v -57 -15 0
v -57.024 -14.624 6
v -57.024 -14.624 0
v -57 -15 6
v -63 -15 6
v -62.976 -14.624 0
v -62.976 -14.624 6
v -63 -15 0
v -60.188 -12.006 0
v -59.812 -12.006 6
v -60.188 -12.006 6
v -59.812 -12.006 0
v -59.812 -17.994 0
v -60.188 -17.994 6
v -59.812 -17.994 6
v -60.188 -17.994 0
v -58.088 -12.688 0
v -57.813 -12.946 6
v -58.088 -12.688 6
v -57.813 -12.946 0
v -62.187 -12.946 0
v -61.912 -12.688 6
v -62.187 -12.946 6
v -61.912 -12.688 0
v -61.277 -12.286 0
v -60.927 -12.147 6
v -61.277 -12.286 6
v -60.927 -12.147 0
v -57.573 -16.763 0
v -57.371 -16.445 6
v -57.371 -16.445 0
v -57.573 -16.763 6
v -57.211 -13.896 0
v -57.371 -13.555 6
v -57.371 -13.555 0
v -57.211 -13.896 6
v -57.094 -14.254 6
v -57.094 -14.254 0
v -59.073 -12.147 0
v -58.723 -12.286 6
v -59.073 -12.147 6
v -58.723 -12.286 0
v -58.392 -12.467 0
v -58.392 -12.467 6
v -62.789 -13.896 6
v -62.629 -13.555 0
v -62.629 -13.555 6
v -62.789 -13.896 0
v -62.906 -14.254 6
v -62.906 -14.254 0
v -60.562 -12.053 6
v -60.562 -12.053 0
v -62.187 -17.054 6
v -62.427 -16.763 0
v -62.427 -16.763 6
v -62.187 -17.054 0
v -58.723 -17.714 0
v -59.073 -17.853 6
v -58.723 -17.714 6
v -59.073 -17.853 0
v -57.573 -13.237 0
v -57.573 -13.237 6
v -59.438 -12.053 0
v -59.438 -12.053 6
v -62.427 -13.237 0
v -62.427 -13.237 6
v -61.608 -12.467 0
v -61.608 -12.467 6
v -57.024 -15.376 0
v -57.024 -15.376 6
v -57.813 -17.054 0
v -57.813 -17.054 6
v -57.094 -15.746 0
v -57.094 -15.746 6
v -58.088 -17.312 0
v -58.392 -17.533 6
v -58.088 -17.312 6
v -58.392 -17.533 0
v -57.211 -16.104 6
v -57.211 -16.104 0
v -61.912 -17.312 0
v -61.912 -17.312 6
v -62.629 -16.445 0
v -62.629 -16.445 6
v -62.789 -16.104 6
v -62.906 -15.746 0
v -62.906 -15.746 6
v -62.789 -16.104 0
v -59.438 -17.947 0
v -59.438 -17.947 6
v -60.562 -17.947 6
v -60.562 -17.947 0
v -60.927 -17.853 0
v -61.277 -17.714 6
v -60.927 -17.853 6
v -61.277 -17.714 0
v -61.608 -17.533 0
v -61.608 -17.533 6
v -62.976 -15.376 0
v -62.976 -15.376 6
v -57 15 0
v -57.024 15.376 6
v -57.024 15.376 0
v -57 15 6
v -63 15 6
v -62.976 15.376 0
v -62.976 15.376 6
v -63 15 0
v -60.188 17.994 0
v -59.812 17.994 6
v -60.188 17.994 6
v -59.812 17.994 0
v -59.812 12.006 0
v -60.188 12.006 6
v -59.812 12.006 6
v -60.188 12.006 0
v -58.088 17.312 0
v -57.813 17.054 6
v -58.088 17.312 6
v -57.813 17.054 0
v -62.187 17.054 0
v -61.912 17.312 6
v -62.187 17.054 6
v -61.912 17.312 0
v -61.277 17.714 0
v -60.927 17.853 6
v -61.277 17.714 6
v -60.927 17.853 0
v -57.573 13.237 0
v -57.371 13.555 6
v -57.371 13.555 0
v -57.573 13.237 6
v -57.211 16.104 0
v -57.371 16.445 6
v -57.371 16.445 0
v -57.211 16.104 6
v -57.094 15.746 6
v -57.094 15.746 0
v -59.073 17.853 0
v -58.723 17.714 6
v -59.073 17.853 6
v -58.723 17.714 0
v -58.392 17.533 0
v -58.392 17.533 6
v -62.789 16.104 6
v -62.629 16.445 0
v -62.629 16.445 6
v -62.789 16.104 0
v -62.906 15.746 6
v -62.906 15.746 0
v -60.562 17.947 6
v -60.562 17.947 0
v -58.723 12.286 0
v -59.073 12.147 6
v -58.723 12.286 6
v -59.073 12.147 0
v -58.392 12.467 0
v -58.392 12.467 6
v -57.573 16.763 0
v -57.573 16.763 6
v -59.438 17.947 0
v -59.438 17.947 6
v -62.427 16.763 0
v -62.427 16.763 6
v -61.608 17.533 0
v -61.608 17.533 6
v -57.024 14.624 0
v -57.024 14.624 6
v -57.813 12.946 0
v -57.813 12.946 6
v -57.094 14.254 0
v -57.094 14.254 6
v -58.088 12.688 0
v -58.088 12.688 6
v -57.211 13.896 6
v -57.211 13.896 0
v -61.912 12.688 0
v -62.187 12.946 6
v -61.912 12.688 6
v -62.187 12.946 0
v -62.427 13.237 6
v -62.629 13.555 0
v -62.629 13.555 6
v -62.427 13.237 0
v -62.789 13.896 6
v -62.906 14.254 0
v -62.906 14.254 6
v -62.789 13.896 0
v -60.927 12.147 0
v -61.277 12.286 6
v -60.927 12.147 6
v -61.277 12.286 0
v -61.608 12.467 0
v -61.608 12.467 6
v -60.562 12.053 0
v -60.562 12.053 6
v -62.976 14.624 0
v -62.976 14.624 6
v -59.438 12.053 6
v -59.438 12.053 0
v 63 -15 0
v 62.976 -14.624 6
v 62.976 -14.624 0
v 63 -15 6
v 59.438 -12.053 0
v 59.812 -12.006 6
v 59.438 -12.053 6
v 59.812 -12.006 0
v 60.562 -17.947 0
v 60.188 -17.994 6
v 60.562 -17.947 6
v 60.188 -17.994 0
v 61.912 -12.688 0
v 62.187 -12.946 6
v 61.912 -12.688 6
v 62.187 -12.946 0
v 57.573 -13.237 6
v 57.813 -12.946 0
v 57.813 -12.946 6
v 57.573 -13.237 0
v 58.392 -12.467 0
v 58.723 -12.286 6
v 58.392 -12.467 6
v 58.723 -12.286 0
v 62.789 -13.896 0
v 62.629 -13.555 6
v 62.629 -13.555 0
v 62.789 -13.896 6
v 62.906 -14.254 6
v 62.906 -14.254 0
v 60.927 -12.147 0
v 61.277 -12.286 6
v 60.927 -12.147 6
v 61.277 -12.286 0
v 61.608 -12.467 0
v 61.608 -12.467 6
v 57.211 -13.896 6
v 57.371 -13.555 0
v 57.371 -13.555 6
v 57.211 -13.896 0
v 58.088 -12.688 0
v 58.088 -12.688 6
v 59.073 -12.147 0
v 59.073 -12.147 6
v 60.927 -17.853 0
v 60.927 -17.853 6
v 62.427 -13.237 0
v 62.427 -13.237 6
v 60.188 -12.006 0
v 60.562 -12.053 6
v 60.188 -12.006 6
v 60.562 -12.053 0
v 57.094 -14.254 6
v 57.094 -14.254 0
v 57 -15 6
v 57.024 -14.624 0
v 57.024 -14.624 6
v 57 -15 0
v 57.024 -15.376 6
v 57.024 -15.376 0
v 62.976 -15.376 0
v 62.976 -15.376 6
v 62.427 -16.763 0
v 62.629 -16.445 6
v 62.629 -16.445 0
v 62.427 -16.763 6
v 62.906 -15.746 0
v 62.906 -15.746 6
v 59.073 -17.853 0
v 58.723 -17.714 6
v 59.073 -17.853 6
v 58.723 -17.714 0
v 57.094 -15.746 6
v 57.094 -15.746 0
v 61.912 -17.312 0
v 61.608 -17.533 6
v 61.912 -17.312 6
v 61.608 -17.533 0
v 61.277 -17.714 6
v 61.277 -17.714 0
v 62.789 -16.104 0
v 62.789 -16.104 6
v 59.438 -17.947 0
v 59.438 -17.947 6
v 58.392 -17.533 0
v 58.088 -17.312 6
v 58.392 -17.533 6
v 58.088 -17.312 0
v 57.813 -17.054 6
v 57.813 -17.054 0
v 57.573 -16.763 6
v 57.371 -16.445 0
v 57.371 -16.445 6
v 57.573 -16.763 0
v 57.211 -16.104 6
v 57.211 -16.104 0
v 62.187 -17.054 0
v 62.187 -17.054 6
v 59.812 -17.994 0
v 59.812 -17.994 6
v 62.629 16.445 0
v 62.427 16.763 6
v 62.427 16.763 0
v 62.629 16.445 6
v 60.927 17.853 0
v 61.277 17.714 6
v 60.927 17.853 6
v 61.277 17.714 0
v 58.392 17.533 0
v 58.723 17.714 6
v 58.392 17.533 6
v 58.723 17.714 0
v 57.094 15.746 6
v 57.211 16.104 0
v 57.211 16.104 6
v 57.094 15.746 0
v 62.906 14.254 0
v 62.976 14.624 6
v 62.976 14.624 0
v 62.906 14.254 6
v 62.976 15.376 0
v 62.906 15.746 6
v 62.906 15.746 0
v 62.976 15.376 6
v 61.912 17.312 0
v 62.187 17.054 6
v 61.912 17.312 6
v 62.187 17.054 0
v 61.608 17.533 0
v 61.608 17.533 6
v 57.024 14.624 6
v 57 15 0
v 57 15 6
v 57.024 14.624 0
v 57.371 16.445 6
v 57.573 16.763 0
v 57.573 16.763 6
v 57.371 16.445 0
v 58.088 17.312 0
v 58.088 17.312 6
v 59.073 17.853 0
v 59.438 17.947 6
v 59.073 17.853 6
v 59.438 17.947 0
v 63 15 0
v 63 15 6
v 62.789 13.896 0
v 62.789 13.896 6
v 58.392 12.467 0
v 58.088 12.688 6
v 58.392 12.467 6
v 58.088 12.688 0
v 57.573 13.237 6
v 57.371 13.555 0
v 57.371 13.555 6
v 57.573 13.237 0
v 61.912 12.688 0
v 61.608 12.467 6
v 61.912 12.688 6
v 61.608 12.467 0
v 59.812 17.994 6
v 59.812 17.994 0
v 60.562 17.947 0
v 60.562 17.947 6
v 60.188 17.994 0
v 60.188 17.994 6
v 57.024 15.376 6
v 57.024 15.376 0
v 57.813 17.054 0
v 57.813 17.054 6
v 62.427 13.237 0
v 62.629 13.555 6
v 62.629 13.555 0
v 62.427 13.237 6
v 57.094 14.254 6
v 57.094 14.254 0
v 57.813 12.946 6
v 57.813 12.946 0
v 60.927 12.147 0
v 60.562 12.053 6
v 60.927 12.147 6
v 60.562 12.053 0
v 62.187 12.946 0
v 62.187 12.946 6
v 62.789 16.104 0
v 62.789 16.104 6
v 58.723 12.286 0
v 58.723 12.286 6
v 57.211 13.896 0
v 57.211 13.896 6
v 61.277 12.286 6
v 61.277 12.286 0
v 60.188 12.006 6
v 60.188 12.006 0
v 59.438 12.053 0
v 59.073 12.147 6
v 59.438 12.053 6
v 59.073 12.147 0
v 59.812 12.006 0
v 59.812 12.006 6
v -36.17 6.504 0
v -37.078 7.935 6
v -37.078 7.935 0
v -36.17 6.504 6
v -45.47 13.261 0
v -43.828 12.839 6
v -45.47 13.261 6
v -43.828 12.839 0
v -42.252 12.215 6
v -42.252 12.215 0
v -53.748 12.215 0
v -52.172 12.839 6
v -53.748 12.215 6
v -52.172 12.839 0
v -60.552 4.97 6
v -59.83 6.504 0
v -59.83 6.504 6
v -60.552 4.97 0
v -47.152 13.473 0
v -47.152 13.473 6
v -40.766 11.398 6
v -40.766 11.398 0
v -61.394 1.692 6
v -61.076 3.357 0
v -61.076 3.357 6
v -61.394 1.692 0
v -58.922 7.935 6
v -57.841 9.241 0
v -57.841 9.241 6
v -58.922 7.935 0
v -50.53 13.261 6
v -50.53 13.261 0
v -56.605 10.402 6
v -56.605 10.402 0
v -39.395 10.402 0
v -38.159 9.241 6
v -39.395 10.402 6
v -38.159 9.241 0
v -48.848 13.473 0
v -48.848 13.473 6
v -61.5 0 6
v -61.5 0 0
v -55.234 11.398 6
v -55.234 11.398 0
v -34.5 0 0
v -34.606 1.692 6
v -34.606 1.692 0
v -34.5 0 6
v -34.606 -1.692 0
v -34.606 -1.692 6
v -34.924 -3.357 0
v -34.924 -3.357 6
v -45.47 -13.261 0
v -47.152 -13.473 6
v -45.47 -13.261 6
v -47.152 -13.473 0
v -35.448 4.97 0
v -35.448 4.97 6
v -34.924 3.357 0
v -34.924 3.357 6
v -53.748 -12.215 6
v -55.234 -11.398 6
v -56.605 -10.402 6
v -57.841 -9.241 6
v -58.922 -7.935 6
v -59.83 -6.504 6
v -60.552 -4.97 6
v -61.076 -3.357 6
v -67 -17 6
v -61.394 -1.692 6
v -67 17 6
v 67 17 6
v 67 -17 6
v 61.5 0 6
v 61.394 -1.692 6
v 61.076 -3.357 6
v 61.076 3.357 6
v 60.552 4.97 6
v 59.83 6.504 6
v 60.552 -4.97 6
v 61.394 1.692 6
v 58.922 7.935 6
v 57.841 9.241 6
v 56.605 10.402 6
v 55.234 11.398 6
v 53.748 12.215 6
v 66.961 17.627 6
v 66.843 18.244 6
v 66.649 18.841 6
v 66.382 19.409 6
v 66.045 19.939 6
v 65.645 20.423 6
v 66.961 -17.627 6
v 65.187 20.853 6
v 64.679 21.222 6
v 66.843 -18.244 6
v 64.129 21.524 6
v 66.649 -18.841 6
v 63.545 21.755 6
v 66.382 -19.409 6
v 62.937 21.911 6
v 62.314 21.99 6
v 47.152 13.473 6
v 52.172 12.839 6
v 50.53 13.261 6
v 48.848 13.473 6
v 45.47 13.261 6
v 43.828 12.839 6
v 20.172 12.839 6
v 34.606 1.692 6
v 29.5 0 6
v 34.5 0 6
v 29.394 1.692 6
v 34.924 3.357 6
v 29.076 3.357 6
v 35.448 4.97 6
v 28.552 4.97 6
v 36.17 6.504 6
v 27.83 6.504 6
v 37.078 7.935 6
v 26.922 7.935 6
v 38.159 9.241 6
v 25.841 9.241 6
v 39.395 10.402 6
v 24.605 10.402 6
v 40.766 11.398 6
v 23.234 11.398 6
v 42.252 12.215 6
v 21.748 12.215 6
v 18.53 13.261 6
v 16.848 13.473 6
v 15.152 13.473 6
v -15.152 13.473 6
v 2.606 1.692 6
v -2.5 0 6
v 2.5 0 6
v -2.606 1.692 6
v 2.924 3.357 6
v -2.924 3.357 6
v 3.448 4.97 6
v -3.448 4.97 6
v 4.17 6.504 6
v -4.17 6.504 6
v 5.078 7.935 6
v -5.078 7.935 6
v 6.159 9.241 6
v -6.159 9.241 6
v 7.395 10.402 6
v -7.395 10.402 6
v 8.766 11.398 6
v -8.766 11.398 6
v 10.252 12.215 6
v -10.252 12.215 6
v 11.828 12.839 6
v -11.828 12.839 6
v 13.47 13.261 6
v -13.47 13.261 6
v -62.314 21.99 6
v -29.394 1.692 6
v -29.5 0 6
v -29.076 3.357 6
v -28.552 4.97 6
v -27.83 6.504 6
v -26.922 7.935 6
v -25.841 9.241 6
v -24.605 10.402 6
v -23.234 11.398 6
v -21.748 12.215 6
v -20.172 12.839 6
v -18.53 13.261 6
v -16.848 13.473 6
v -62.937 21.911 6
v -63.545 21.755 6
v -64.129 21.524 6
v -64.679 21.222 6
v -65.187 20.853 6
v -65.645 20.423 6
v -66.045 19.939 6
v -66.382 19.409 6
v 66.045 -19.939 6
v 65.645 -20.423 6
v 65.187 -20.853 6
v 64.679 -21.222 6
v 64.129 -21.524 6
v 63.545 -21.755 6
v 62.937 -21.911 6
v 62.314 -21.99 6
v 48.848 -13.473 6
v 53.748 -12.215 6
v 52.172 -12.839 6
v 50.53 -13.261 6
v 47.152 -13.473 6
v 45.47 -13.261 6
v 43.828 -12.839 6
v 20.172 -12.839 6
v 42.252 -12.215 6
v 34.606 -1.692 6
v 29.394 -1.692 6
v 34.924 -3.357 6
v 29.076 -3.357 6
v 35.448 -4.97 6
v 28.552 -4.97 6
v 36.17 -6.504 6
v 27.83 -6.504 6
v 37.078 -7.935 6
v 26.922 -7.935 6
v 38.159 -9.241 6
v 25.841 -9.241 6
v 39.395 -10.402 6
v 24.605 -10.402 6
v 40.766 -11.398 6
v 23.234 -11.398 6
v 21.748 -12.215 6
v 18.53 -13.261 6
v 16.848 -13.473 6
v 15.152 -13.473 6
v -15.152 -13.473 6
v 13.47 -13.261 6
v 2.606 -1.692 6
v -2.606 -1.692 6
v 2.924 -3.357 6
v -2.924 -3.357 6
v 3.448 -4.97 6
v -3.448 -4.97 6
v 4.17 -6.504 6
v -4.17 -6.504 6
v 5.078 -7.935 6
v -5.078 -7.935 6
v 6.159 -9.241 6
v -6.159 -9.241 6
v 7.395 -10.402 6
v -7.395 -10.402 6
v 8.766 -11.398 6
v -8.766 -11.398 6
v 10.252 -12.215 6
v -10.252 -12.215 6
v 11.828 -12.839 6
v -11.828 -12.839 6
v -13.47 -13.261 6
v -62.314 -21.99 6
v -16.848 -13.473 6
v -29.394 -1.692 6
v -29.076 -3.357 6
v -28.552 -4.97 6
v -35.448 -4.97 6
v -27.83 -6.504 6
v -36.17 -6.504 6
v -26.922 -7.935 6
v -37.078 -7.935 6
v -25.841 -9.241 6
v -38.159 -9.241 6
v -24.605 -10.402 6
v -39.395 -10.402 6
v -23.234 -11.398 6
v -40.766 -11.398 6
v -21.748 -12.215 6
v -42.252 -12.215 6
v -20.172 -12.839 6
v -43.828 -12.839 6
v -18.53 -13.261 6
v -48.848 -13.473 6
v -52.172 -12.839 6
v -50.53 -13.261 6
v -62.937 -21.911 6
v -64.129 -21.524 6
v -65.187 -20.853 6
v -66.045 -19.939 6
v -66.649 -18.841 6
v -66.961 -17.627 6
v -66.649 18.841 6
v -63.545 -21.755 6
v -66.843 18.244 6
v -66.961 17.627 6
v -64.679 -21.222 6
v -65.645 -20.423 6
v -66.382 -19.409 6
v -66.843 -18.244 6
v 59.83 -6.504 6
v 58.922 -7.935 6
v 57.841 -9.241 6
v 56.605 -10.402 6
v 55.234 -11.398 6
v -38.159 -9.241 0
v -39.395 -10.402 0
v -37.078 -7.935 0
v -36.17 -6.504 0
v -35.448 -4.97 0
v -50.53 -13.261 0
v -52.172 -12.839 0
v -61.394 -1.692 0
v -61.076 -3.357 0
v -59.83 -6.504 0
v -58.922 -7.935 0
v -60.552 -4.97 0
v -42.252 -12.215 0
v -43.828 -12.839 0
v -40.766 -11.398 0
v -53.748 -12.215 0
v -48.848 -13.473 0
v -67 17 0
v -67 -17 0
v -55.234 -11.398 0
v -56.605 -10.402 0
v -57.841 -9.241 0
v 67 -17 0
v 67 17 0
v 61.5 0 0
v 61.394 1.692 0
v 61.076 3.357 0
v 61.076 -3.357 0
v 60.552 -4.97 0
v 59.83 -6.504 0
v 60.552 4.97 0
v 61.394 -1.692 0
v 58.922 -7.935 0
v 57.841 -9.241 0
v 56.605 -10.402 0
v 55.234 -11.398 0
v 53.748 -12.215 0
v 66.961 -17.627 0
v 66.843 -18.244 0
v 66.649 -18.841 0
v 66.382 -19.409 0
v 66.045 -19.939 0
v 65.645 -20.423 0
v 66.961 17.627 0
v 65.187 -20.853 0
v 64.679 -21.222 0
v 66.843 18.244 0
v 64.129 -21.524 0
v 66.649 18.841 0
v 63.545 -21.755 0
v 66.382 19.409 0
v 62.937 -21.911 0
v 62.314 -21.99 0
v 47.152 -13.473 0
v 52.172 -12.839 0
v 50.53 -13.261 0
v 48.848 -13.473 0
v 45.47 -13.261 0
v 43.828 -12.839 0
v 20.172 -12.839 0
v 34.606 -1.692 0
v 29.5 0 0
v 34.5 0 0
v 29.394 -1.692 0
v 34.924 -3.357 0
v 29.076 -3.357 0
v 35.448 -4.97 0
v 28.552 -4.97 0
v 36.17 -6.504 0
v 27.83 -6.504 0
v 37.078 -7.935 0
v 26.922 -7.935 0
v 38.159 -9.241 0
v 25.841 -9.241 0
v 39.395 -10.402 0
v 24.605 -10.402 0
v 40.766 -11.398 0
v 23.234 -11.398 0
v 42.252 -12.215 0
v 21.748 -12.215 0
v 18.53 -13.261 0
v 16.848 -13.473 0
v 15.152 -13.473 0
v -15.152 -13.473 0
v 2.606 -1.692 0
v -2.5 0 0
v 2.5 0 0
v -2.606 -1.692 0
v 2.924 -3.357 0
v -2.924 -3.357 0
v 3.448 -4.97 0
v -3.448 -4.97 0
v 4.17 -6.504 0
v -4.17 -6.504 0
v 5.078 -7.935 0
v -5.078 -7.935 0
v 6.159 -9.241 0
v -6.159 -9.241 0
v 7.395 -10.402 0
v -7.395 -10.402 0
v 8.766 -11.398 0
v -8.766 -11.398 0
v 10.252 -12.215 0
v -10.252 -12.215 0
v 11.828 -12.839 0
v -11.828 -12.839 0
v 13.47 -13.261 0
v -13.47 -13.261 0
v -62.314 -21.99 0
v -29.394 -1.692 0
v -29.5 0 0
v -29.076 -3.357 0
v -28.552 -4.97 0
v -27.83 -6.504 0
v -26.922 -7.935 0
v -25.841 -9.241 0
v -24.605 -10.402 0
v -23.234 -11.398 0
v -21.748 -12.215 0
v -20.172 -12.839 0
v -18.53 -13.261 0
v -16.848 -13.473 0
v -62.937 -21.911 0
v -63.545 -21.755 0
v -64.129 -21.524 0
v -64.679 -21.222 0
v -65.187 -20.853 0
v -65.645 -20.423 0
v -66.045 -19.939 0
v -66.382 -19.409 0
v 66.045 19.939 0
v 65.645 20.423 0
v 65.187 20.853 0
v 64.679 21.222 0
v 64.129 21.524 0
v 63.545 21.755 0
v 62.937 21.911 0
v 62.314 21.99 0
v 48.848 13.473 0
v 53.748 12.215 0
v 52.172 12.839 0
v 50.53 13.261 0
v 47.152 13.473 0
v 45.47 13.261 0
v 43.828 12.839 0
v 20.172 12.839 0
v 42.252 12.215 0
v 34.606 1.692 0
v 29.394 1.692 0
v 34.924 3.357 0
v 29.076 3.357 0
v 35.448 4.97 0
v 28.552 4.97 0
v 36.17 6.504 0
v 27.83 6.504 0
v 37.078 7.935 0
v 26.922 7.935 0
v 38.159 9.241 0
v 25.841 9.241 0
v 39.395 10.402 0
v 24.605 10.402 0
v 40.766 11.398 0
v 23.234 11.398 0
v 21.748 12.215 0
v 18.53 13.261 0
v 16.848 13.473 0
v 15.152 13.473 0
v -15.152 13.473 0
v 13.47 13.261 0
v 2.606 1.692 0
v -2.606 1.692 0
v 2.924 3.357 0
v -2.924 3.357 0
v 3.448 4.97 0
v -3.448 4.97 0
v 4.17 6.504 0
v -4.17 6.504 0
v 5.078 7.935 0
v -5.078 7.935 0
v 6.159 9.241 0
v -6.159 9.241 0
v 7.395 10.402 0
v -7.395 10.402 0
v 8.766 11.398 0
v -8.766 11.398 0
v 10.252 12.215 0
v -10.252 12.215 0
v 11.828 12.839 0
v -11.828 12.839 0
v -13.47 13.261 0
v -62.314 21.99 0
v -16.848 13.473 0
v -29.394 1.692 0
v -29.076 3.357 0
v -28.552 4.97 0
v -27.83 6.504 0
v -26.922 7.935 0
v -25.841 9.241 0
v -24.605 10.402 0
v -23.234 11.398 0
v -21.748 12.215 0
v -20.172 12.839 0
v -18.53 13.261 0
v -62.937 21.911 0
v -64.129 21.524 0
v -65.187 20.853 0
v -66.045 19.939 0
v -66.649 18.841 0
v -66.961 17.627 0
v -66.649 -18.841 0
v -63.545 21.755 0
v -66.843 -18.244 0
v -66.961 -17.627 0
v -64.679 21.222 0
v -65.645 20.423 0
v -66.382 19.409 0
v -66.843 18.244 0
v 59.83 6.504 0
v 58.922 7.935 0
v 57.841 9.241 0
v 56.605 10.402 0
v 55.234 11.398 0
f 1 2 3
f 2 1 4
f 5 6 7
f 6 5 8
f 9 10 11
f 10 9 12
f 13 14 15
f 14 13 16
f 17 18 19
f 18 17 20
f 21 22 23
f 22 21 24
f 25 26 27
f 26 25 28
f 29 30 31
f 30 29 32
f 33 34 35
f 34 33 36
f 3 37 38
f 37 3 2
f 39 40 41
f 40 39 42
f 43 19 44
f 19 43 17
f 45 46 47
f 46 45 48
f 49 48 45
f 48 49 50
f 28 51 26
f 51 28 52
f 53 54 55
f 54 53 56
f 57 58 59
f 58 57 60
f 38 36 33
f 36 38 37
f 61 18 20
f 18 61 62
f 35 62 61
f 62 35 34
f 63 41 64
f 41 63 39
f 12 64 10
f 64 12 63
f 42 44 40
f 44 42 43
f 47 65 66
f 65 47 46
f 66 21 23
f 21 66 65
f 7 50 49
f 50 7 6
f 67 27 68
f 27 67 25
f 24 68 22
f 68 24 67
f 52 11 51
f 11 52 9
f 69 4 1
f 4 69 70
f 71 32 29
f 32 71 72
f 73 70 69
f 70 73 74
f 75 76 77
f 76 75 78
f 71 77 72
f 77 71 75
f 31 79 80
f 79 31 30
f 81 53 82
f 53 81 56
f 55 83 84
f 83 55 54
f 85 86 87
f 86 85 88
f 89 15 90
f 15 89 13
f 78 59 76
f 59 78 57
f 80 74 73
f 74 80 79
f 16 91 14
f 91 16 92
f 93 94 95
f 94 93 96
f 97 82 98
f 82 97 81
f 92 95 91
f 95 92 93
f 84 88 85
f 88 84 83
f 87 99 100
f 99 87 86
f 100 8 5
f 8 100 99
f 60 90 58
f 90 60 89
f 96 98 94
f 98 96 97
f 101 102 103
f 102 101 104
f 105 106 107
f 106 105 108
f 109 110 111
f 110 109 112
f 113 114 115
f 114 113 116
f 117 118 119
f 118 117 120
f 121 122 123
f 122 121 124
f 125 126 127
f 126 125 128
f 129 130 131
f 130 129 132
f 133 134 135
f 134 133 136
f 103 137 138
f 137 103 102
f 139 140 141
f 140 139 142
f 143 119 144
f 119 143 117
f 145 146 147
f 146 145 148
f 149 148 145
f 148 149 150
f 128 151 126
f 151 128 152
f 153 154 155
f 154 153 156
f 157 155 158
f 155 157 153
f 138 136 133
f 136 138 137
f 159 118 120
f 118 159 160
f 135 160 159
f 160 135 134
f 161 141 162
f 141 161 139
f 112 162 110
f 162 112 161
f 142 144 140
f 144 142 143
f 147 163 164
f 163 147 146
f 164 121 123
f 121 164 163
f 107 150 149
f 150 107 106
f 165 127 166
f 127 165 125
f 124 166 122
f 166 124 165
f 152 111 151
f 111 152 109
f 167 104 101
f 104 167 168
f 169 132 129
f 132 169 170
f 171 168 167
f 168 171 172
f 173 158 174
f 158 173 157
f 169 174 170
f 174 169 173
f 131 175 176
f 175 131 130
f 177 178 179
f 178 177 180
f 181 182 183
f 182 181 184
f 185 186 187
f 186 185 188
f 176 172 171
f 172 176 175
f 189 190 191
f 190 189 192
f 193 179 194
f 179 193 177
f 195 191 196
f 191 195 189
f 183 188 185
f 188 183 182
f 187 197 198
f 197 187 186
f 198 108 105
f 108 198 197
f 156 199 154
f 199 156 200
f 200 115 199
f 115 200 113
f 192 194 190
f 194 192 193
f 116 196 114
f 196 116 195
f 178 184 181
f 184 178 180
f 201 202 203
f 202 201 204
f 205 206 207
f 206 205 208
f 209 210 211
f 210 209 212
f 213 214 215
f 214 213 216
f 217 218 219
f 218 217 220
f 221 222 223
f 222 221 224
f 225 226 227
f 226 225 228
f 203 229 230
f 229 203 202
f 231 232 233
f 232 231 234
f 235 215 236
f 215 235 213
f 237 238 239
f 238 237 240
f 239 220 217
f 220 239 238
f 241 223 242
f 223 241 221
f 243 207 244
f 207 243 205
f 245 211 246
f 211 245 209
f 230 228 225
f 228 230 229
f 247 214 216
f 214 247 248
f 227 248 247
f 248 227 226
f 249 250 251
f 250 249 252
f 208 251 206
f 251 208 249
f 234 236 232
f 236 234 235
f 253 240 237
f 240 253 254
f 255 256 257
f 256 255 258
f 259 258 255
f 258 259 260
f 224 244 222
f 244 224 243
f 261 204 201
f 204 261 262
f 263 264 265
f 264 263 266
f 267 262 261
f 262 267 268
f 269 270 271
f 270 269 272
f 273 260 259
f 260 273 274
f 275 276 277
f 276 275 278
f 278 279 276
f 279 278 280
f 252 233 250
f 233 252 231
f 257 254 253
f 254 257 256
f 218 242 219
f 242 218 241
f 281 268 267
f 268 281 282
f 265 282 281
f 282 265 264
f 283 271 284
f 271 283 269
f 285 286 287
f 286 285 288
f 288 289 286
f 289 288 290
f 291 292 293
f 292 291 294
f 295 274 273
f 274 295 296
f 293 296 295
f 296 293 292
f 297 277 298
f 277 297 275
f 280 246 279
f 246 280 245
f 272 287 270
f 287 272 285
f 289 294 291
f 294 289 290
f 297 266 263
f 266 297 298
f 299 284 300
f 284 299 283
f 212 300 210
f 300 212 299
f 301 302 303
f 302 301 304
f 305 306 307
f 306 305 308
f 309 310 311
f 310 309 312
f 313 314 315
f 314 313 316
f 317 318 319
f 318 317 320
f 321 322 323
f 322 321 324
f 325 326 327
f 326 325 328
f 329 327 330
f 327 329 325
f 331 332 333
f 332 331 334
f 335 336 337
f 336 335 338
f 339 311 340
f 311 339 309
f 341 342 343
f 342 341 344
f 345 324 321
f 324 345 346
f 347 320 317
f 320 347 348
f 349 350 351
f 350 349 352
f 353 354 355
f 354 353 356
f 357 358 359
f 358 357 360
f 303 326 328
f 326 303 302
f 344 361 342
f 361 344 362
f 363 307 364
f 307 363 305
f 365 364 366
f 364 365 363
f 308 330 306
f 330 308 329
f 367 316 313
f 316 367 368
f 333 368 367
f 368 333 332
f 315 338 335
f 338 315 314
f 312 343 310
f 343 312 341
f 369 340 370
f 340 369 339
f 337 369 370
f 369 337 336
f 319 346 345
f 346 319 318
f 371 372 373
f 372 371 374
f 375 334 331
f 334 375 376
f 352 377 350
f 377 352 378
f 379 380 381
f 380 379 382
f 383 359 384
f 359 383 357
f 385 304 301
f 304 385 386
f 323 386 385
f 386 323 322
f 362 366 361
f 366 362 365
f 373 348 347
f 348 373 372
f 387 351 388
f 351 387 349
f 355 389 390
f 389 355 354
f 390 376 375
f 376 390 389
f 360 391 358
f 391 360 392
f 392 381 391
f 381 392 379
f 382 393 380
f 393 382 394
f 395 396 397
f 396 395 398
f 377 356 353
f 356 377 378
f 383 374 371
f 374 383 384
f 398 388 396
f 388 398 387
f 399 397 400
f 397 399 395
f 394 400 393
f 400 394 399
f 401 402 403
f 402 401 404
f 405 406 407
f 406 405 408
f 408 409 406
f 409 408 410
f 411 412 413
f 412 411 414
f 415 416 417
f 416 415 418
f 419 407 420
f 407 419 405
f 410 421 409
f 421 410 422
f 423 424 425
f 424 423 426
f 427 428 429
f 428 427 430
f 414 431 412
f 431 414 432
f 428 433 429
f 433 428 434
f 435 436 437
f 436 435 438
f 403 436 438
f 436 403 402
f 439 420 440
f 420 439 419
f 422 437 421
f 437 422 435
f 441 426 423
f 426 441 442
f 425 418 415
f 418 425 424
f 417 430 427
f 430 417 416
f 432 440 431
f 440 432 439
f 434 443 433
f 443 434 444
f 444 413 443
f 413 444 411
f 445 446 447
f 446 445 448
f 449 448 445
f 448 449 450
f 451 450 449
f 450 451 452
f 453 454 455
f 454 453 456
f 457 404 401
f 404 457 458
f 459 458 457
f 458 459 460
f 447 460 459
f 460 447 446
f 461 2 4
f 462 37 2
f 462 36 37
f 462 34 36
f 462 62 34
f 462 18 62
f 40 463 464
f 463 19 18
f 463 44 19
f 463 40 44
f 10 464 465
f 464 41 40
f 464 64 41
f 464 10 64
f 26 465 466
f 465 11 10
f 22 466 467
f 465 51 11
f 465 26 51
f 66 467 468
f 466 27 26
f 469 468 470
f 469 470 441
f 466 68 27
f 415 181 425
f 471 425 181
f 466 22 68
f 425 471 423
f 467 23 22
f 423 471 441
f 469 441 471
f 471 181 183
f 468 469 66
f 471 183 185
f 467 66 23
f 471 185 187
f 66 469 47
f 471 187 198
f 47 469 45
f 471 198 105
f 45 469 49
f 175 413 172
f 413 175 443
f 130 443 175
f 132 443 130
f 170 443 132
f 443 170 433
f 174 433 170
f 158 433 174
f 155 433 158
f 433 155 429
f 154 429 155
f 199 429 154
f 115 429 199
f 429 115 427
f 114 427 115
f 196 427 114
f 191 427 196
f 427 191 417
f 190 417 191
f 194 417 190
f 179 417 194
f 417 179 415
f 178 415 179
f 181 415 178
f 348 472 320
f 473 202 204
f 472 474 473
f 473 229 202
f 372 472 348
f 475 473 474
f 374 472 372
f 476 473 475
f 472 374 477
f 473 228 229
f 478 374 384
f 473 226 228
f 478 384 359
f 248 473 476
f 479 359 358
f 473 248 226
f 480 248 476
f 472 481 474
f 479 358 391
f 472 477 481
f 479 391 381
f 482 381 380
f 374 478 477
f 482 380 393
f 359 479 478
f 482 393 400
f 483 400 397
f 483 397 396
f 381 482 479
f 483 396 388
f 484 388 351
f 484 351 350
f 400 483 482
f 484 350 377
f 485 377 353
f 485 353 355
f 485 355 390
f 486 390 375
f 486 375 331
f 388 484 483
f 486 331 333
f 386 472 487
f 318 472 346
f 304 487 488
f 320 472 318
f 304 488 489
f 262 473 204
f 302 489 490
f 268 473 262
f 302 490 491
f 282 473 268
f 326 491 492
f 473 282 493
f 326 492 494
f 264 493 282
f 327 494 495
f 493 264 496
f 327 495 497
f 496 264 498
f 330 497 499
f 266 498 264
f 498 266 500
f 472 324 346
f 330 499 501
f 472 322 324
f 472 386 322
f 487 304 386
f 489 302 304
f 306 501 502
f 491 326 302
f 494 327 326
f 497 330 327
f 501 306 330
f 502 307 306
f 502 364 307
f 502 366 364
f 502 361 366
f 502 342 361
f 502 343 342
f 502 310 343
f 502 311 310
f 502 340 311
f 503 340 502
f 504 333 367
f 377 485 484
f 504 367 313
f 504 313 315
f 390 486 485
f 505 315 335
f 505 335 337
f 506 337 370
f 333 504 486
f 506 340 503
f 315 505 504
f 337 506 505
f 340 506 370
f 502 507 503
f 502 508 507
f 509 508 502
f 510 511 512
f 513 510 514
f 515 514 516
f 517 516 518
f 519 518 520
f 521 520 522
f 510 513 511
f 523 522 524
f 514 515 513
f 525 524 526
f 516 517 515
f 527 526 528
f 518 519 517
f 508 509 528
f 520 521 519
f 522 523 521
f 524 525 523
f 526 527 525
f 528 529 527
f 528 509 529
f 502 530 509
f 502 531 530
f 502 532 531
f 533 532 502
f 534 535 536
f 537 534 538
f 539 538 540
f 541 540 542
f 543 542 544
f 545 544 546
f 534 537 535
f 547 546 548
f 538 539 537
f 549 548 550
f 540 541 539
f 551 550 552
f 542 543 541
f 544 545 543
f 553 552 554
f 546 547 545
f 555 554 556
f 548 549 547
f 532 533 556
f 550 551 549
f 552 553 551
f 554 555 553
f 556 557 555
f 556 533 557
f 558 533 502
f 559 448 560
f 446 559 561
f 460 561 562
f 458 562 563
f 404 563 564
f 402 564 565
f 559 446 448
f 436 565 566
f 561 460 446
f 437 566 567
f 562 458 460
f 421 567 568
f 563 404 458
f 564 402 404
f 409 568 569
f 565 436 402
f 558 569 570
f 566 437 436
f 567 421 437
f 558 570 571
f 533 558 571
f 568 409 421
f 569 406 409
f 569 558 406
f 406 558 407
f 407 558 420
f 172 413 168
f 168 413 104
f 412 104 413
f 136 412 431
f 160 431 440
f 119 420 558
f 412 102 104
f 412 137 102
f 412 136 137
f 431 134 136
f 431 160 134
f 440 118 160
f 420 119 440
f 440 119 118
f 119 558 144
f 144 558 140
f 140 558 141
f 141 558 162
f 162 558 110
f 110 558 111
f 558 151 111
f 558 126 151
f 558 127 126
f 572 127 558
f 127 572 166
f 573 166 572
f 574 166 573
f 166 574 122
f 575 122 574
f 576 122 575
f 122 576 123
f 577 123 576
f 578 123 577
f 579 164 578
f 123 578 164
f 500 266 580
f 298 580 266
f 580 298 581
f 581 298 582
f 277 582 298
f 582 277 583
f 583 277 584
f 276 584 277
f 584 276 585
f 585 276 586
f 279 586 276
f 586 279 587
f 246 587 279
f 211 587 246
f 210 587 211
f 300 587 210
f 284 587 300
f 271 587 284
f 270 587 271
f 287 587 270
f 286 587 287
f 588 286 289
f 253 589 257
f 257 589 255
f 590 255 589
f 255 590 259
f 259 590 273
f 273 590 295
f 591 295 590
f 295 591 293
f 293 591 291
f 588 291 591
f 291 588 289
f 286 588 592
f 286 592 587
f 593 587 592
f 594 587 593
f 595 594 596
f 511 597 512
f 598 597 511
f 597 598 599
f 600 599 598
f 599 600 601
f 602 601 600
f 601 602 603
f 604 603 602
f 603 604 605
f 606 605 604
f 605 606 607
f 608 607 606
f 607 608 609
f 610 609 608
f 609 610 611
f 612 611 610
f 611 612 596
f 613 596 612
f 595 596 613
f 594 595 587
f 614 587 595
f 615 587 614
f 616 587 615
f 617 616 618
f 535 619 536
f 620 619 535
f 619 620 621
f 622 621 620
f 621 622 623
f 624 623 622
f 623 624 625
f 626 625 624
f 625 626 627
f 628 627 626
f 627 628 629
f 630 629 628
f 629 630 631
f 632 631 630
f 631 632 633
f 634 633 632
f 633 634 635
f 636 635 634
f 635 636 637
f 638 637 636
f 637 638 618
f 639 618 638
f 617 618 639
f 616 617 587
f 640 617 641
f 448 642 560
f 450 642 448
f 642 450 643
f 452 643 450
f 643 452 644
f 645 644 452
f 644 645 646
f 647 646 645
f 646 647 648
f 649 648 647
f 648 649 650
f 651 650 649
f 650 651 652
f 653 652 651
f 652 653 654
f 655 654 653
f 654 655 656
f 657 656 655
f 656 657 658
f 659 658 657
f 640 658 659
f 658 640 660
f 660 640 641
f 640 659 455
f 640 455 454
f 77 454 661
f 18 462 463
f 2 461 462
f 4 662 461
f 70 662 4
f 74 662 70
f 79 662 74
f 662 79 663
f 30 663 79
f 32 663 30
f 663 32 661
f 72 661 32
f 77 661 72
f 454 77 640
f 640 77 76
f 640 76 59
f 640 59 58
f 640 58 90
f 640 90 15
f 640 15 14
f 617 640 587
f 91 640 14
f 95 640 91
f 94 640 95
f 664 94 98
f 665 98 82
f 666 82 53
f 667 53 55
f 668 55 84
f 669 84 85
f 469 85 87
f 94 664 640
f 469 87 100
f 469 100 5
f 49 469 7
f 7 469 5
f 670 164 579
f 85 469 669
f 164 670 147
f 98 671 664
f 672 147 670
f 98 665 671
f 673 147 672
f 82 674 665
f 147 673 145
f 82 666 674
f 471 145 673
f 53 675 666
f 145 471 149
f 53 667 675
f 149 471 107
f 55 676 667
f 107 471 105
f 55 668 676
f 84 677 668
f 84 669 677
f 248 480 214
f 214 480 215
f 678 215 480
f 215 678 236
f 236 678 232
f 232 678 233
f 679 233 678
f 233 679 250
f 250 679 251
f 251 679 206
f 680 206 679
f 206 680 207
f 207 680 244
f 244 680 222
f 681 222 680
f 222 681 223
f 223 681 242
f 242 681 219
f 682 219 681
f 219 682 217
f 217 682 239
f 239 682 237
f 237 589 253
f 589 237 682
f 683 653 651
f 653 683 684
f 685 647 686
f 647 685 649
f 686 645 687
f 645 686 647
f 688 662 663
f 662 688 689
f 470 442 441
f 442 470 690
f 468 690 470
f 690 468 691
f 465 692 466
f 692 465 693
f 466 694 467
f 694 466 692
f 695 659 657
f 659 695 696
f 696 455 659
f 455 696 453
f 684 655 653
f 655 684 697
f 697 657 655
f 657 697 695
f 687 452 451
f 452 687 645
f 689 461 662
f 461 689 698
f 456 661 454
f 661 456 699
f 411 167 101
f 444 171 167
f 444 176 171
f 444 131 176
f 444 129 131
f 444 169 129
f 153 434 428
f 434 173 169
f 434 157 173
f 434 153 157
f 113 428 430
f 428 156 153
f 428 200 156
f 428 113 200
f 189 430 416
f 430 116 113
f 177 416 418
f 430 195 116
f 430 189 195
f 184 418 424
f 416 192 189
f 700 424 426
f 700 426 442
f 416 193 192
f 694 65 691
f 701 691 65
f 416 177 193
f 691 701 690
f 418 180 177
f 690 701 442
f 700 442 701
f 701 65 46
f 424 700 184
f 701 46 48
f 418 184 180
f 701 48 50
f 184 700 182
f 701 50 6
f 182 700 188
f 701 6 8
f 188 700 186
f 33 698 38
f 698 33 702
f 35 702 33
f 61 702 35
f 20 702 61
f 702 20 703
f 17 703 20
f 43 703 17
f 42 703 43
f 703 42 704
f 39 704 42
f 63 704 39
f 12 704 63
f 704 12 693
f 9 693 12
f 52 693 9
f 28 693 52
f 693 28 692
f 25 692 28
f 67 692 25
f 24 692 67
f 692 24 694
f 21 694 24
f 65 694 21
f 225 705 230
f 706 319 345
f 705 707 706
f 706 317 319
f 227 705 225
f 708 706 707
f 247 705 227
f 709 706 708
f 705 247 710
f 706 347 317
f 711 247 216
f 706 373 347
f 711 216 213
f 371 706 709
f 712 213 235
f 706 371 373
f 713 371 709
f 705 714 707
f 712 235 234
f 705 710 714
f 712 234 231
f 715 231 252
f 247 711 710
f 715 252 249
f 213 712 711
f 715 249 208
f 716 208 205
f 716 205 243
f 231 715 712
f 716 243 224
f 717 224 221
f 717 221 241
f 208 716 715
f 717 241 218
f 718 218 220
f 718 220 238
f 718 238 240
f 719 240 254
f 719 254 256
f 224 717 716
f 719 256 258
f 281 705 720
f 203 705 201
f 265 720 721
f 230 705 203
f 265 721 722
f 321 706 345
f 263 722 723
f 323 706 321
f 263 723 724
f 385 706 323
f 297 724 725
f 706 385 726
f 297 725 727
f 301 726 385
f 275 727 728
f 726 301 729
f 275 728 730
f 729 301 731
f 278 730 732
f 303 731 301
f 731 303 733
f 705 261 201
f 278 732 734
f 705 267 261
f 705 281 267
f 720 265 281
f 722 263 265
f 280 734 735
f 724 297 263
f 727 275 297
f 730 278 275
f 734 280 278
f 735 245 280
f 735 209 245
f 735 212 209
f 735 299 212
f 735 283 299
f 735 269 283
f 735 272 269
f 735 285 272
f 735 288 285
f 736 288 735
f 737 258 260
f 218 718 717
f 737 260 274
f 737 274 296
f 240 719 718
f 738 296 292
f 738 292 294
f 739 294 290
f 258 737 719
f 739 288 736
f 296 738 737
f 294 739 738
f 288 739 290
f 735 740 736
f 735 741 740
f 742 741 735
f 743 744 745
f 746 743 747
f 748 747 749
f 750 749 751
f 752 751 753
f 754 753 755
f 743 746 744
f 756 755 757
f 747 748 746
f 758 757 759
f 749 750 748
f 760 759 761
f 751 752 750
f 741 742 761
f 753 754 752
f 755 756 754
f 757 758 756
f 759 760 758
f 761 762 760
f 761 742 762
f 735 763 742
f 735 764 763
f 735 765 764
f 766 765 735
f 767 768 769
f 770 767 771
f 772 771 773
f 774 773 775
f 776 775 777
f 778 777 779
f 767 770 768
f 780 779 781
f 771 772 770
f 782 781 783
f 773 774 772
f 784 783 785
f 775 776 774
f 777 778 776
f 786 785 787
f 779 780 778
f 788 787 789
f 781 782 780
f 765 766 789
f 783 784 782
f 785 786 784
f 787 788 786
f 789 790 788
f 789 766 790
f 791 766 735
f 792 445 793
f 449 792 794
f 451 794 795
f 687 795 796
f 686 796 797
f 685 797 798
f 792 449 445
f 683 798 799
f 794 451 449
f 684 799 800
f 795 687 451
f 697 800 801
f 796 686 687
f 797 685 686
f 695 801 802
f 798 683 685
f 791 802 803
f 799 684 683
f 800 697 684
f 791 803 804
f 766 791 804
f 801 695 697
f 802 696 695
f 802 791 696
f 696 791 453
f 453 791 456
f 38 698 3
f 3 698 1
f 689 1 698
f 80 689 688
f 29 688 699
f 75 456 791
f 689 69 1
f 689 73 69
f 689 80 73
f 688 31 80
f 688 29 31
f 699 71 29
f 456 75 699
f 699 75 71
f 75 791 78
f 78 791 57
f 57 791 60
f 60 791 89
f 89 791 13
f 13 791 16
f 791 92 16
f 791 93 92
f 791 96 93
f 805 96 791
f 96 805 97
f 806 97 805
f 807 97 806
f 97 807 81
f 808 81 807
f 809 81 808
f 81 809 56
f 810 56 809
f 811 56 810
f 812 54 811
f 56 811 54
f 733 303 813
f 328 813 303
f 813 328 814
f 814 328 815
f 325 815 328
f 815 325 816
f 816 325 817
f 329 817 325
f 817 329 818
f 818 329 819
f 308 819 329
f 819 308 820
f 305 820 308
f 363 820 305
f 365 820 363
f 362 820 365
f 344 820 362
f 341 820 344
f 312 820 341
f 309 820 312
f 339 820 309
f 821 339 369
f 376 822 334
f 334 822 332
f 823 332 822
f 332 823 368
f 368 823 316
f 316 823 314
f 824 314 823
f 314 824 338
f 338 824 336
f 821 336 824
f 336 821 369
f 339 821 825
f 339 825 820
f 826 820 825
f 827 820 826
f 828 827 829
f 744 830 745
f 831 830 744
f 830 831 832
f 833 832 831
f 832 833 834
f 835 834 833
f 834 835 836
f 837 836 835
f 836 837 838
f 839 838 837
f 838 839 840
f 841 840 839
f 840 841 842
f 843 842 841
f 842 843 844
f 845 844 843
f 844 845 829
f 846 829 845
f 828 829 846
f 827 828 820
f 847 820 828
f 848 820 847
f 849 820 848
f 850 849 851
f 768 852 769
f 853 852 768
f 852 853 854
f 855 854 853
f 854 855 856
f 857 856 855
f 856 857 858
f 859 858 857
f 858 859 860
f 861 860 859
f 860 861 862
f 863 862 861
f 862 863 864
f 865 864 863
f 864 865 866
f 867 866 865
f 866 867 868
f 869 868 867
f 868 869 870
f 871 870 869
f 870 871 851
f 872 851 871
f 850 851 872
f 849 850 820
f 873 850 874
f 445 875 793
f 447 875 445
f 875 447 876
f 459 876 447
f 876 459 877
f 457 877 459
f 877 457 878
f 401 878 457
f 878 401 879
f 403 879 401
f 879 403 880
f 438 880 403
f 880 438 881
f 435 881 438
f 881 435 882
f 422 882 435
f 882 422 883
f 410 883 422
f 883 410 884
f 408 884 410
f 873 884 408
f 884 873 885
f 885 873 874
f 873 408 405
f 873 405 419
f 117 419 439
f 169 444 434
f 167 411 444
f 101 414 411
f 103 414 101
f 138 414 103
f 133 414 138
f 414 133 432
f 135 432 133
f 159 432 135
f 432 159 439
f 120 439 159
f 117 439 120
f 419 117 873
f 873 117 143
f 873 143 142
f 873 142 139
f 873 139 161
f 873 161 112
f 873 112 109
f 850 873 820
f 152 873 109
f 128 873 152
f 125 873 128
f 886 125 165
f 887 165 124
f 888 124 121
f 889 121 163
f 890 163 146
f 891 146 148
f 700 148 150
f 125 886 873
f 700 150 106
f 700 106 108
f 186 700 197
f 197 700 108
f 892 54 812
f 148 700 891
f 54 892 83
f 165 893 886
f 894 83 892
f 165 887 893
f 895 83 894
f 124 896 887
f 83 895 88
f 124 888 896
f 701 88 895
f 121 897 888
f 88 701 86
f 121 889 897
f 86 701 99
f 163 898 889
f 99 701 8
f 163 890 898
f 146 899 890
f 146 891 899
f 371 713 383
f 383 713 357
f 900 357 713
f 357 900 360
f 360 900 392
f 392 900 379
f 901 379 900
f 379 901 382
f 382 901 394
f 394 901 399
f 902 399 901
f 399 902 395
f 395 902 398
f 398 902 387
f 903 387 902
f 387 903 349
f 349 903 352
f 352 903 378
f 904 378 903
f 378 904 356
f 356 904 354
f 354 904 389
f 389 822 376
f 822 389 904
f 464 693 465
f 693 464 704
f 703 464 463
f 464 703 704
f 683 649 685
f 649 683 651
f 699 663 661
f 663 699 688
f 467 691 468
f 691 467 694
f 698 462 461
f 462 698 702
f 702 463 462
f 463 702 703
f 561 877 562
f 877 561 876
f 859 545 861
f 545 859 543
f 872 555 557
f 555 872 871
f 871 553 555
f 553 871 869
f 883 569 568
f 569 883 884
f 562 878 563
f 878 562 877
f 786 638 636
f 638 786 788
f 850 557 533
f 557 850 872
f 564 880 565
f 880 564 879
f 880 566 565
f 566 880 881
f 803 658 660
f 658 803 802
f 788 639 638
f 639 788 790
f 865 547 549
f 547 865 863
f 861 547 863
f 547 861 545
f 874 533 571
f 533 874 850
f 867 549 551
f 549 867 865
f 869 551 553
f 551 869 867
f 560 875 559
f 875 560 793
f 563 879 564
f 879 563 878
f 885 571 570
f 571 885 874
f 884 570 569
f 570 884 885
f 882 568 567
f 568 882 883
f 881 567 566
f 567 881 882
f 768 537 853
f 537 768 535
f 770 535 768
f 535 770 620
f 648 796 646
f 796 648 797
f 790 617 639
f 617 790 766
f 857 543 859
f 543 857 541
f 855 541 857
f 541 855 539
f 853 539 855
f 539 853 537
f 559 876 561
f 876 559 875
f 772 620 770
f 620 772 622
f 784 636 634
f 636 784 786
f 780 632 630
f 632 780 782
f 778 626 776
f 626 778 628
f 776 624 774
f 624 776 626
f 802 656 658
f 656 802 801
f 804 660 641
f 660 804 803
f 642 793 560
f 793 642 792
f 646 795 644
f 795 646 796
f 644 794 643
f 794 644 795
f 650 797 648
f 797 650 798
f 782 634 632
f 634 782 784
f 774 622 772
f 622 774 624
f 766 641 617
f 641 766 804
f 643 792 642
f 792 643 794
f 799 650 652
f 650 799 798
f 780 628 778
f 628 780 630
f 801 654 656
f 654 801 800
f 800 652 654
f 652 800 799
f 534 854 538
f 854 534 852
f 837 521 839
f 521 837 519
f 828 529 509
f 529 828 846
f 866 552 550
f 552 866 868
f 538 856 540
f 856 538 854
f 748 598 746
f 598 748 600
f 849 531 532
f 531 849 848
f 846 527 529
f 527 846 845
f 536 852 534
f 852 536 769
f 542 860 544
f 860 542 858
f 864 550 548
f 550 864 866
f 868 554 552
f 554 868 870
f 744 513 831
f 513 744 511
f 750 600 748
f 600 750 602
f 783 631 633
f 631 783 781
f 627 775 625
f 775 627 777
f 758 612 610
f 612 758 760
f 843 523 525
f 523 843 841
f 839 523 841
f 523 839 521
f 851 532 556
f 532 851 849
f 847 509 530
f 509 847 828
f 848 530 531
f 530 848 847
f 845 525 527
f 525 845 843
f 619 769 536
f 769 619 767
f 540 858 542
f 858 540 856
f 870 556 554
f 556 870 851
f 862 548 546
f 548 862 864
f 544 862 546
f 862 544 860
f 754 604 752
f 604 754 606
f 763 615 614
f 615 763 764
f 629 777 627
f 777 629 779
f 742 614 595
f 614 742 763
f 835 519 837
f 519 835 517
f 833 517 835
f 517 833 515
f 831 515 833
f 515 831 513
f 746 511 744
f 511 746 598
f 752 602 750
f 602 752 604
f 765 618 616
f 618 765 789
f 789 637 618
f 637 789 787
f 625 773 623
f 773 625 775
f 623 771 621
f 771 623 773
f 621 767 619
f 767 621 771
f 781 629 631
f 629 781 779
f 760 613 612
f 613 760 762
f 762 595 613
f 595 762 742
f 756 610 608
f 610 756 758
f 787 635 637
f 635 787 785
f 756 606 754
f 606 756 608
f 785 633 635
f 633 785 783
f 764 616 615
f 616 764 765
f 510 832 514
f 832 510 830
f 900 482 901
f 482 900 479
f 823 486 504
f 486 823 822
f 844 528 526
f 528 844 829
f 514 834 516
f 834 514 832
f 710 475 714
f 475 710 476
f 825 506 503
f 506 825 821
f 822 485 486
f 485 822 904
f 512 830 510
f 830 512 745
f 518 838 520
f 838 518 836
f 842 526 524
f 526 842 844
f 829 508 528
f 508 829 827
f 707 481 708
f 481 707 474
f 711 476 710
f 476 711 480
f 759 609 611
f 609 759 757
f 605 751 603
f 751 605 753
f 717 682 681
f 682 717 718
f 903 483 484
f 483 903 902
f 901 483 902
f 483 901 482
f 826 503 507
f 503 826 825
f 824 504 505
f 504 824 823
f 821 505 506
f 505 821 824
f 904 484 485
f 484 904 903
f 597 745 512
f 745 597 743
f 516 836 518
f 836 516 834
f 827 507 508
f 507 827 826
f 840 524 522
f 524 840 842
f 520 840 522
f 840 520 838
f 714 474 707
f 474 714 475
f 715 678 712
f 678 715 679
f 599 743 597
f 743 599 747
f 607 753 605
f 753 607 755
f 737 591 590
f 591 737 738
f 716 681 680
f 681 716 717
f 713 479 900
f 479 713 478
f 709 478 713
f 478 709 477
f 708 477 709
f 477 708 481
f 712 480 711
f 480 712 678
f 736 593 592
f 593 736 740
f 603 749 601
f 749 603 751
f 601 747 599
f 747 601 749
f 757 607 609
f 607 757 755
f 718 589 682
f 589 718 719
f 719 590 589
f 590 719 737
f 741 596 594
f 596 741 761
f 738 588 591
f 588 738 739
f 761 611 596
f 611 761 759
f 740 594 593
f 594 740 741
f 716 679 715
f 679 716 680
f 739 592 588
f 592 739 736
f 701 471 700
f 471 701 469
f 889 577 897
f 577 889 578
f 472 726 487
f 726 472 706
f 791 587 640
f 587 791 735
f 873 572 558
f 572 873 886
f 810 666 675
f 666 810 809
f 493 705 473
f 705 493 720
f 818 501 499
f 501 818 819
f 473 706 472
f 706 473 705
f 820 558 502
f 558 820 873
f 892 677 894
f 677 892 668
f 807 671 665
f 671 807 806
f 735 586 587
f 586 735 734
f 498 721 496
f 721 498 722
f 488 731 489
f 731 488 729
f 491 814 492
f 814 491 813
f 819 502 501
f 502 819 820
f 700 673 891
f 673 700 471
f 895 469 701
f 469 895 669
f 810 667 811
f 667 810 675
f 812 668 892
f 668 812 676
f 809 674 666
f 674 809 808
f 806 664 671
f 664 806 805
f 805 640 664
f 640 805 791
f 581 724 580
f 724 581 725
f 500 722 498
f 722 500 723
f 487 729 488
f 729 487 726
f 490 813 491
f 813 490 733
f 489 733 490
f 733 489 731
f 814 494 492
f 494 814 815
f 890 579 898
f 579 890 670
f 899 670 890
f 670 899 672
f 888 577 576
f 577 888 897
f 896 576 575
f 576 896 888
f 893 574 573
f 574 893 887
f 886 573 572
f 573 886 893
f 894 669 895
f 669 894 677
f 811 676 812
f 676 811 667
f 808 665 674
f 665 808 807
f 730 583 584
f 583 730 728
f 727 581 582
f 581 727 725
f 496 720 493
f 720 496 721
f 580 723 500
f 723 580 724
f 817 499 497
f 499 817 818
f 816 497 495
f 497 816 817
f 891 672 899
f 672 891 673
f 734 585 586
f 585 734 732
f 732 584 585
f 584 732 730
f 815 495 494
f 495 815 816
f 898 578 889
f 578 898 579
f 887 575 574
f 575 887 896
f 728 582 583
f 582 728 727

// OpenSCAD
$fn = 50;


difference() {
	union() {
		hull() {
			translate(v = [-62.0000000000, 17.0000000000, 0]) {
				cylinder(h = 6, r = 5);
			}
			translate(v = [62.0000000000, 17.0000000000, 0]) {
				cylinder(h = 6, r = 5);
			}
			translate(v = [-62.0000000000, -17.0000000000, 0]) {
				cylinder(h = 6, r = 5);
			}
			translate(v = [62.0000000000, -17.0000000000, 0]) {
				cylinder(h = 6, r = 5);
			}
		}
	}
	union() {
		#translate(v = [-60.0000000000, -15.0000000000, -100.0000000000]) {
			cylinder(h = 200, r = 3.0000000000);
		}
		#translate(v = [-60.0000000000, 15.0000000000, -100.0000000000]) {
			cylinder(h = 200, r = 3.0000000000);
		}
		#translate(v = [60.0000000000, -15.0000000000, -100.0000000000]) {
			cylinder(h = 200, r = 3.0000000000);
		}
		#translate(v = [60.0000000000, 15.0000000000, -100.0000000000]) {
			cylinder(h = 200, r = 3.0000000000);
		}
		#translate(v = [-48.0000000000, 0, 0]) {
			cylinder(h = 6, r = 13.5000000000);
		}
		#translate(v = [-16.0000000000, 0, 0]) {
			cylinder(h = 6, r = 13.5000000000);
		}
		#translate(v = [16.0000000000, 0, 0]) {
			cylinder(h = 6, r = 13.5000000000);
		}
		#translate(v = [48.0000000000, 0, 0]) {
			cylinder(h = 6, r = 13.5000000000);
		}
	}
}
